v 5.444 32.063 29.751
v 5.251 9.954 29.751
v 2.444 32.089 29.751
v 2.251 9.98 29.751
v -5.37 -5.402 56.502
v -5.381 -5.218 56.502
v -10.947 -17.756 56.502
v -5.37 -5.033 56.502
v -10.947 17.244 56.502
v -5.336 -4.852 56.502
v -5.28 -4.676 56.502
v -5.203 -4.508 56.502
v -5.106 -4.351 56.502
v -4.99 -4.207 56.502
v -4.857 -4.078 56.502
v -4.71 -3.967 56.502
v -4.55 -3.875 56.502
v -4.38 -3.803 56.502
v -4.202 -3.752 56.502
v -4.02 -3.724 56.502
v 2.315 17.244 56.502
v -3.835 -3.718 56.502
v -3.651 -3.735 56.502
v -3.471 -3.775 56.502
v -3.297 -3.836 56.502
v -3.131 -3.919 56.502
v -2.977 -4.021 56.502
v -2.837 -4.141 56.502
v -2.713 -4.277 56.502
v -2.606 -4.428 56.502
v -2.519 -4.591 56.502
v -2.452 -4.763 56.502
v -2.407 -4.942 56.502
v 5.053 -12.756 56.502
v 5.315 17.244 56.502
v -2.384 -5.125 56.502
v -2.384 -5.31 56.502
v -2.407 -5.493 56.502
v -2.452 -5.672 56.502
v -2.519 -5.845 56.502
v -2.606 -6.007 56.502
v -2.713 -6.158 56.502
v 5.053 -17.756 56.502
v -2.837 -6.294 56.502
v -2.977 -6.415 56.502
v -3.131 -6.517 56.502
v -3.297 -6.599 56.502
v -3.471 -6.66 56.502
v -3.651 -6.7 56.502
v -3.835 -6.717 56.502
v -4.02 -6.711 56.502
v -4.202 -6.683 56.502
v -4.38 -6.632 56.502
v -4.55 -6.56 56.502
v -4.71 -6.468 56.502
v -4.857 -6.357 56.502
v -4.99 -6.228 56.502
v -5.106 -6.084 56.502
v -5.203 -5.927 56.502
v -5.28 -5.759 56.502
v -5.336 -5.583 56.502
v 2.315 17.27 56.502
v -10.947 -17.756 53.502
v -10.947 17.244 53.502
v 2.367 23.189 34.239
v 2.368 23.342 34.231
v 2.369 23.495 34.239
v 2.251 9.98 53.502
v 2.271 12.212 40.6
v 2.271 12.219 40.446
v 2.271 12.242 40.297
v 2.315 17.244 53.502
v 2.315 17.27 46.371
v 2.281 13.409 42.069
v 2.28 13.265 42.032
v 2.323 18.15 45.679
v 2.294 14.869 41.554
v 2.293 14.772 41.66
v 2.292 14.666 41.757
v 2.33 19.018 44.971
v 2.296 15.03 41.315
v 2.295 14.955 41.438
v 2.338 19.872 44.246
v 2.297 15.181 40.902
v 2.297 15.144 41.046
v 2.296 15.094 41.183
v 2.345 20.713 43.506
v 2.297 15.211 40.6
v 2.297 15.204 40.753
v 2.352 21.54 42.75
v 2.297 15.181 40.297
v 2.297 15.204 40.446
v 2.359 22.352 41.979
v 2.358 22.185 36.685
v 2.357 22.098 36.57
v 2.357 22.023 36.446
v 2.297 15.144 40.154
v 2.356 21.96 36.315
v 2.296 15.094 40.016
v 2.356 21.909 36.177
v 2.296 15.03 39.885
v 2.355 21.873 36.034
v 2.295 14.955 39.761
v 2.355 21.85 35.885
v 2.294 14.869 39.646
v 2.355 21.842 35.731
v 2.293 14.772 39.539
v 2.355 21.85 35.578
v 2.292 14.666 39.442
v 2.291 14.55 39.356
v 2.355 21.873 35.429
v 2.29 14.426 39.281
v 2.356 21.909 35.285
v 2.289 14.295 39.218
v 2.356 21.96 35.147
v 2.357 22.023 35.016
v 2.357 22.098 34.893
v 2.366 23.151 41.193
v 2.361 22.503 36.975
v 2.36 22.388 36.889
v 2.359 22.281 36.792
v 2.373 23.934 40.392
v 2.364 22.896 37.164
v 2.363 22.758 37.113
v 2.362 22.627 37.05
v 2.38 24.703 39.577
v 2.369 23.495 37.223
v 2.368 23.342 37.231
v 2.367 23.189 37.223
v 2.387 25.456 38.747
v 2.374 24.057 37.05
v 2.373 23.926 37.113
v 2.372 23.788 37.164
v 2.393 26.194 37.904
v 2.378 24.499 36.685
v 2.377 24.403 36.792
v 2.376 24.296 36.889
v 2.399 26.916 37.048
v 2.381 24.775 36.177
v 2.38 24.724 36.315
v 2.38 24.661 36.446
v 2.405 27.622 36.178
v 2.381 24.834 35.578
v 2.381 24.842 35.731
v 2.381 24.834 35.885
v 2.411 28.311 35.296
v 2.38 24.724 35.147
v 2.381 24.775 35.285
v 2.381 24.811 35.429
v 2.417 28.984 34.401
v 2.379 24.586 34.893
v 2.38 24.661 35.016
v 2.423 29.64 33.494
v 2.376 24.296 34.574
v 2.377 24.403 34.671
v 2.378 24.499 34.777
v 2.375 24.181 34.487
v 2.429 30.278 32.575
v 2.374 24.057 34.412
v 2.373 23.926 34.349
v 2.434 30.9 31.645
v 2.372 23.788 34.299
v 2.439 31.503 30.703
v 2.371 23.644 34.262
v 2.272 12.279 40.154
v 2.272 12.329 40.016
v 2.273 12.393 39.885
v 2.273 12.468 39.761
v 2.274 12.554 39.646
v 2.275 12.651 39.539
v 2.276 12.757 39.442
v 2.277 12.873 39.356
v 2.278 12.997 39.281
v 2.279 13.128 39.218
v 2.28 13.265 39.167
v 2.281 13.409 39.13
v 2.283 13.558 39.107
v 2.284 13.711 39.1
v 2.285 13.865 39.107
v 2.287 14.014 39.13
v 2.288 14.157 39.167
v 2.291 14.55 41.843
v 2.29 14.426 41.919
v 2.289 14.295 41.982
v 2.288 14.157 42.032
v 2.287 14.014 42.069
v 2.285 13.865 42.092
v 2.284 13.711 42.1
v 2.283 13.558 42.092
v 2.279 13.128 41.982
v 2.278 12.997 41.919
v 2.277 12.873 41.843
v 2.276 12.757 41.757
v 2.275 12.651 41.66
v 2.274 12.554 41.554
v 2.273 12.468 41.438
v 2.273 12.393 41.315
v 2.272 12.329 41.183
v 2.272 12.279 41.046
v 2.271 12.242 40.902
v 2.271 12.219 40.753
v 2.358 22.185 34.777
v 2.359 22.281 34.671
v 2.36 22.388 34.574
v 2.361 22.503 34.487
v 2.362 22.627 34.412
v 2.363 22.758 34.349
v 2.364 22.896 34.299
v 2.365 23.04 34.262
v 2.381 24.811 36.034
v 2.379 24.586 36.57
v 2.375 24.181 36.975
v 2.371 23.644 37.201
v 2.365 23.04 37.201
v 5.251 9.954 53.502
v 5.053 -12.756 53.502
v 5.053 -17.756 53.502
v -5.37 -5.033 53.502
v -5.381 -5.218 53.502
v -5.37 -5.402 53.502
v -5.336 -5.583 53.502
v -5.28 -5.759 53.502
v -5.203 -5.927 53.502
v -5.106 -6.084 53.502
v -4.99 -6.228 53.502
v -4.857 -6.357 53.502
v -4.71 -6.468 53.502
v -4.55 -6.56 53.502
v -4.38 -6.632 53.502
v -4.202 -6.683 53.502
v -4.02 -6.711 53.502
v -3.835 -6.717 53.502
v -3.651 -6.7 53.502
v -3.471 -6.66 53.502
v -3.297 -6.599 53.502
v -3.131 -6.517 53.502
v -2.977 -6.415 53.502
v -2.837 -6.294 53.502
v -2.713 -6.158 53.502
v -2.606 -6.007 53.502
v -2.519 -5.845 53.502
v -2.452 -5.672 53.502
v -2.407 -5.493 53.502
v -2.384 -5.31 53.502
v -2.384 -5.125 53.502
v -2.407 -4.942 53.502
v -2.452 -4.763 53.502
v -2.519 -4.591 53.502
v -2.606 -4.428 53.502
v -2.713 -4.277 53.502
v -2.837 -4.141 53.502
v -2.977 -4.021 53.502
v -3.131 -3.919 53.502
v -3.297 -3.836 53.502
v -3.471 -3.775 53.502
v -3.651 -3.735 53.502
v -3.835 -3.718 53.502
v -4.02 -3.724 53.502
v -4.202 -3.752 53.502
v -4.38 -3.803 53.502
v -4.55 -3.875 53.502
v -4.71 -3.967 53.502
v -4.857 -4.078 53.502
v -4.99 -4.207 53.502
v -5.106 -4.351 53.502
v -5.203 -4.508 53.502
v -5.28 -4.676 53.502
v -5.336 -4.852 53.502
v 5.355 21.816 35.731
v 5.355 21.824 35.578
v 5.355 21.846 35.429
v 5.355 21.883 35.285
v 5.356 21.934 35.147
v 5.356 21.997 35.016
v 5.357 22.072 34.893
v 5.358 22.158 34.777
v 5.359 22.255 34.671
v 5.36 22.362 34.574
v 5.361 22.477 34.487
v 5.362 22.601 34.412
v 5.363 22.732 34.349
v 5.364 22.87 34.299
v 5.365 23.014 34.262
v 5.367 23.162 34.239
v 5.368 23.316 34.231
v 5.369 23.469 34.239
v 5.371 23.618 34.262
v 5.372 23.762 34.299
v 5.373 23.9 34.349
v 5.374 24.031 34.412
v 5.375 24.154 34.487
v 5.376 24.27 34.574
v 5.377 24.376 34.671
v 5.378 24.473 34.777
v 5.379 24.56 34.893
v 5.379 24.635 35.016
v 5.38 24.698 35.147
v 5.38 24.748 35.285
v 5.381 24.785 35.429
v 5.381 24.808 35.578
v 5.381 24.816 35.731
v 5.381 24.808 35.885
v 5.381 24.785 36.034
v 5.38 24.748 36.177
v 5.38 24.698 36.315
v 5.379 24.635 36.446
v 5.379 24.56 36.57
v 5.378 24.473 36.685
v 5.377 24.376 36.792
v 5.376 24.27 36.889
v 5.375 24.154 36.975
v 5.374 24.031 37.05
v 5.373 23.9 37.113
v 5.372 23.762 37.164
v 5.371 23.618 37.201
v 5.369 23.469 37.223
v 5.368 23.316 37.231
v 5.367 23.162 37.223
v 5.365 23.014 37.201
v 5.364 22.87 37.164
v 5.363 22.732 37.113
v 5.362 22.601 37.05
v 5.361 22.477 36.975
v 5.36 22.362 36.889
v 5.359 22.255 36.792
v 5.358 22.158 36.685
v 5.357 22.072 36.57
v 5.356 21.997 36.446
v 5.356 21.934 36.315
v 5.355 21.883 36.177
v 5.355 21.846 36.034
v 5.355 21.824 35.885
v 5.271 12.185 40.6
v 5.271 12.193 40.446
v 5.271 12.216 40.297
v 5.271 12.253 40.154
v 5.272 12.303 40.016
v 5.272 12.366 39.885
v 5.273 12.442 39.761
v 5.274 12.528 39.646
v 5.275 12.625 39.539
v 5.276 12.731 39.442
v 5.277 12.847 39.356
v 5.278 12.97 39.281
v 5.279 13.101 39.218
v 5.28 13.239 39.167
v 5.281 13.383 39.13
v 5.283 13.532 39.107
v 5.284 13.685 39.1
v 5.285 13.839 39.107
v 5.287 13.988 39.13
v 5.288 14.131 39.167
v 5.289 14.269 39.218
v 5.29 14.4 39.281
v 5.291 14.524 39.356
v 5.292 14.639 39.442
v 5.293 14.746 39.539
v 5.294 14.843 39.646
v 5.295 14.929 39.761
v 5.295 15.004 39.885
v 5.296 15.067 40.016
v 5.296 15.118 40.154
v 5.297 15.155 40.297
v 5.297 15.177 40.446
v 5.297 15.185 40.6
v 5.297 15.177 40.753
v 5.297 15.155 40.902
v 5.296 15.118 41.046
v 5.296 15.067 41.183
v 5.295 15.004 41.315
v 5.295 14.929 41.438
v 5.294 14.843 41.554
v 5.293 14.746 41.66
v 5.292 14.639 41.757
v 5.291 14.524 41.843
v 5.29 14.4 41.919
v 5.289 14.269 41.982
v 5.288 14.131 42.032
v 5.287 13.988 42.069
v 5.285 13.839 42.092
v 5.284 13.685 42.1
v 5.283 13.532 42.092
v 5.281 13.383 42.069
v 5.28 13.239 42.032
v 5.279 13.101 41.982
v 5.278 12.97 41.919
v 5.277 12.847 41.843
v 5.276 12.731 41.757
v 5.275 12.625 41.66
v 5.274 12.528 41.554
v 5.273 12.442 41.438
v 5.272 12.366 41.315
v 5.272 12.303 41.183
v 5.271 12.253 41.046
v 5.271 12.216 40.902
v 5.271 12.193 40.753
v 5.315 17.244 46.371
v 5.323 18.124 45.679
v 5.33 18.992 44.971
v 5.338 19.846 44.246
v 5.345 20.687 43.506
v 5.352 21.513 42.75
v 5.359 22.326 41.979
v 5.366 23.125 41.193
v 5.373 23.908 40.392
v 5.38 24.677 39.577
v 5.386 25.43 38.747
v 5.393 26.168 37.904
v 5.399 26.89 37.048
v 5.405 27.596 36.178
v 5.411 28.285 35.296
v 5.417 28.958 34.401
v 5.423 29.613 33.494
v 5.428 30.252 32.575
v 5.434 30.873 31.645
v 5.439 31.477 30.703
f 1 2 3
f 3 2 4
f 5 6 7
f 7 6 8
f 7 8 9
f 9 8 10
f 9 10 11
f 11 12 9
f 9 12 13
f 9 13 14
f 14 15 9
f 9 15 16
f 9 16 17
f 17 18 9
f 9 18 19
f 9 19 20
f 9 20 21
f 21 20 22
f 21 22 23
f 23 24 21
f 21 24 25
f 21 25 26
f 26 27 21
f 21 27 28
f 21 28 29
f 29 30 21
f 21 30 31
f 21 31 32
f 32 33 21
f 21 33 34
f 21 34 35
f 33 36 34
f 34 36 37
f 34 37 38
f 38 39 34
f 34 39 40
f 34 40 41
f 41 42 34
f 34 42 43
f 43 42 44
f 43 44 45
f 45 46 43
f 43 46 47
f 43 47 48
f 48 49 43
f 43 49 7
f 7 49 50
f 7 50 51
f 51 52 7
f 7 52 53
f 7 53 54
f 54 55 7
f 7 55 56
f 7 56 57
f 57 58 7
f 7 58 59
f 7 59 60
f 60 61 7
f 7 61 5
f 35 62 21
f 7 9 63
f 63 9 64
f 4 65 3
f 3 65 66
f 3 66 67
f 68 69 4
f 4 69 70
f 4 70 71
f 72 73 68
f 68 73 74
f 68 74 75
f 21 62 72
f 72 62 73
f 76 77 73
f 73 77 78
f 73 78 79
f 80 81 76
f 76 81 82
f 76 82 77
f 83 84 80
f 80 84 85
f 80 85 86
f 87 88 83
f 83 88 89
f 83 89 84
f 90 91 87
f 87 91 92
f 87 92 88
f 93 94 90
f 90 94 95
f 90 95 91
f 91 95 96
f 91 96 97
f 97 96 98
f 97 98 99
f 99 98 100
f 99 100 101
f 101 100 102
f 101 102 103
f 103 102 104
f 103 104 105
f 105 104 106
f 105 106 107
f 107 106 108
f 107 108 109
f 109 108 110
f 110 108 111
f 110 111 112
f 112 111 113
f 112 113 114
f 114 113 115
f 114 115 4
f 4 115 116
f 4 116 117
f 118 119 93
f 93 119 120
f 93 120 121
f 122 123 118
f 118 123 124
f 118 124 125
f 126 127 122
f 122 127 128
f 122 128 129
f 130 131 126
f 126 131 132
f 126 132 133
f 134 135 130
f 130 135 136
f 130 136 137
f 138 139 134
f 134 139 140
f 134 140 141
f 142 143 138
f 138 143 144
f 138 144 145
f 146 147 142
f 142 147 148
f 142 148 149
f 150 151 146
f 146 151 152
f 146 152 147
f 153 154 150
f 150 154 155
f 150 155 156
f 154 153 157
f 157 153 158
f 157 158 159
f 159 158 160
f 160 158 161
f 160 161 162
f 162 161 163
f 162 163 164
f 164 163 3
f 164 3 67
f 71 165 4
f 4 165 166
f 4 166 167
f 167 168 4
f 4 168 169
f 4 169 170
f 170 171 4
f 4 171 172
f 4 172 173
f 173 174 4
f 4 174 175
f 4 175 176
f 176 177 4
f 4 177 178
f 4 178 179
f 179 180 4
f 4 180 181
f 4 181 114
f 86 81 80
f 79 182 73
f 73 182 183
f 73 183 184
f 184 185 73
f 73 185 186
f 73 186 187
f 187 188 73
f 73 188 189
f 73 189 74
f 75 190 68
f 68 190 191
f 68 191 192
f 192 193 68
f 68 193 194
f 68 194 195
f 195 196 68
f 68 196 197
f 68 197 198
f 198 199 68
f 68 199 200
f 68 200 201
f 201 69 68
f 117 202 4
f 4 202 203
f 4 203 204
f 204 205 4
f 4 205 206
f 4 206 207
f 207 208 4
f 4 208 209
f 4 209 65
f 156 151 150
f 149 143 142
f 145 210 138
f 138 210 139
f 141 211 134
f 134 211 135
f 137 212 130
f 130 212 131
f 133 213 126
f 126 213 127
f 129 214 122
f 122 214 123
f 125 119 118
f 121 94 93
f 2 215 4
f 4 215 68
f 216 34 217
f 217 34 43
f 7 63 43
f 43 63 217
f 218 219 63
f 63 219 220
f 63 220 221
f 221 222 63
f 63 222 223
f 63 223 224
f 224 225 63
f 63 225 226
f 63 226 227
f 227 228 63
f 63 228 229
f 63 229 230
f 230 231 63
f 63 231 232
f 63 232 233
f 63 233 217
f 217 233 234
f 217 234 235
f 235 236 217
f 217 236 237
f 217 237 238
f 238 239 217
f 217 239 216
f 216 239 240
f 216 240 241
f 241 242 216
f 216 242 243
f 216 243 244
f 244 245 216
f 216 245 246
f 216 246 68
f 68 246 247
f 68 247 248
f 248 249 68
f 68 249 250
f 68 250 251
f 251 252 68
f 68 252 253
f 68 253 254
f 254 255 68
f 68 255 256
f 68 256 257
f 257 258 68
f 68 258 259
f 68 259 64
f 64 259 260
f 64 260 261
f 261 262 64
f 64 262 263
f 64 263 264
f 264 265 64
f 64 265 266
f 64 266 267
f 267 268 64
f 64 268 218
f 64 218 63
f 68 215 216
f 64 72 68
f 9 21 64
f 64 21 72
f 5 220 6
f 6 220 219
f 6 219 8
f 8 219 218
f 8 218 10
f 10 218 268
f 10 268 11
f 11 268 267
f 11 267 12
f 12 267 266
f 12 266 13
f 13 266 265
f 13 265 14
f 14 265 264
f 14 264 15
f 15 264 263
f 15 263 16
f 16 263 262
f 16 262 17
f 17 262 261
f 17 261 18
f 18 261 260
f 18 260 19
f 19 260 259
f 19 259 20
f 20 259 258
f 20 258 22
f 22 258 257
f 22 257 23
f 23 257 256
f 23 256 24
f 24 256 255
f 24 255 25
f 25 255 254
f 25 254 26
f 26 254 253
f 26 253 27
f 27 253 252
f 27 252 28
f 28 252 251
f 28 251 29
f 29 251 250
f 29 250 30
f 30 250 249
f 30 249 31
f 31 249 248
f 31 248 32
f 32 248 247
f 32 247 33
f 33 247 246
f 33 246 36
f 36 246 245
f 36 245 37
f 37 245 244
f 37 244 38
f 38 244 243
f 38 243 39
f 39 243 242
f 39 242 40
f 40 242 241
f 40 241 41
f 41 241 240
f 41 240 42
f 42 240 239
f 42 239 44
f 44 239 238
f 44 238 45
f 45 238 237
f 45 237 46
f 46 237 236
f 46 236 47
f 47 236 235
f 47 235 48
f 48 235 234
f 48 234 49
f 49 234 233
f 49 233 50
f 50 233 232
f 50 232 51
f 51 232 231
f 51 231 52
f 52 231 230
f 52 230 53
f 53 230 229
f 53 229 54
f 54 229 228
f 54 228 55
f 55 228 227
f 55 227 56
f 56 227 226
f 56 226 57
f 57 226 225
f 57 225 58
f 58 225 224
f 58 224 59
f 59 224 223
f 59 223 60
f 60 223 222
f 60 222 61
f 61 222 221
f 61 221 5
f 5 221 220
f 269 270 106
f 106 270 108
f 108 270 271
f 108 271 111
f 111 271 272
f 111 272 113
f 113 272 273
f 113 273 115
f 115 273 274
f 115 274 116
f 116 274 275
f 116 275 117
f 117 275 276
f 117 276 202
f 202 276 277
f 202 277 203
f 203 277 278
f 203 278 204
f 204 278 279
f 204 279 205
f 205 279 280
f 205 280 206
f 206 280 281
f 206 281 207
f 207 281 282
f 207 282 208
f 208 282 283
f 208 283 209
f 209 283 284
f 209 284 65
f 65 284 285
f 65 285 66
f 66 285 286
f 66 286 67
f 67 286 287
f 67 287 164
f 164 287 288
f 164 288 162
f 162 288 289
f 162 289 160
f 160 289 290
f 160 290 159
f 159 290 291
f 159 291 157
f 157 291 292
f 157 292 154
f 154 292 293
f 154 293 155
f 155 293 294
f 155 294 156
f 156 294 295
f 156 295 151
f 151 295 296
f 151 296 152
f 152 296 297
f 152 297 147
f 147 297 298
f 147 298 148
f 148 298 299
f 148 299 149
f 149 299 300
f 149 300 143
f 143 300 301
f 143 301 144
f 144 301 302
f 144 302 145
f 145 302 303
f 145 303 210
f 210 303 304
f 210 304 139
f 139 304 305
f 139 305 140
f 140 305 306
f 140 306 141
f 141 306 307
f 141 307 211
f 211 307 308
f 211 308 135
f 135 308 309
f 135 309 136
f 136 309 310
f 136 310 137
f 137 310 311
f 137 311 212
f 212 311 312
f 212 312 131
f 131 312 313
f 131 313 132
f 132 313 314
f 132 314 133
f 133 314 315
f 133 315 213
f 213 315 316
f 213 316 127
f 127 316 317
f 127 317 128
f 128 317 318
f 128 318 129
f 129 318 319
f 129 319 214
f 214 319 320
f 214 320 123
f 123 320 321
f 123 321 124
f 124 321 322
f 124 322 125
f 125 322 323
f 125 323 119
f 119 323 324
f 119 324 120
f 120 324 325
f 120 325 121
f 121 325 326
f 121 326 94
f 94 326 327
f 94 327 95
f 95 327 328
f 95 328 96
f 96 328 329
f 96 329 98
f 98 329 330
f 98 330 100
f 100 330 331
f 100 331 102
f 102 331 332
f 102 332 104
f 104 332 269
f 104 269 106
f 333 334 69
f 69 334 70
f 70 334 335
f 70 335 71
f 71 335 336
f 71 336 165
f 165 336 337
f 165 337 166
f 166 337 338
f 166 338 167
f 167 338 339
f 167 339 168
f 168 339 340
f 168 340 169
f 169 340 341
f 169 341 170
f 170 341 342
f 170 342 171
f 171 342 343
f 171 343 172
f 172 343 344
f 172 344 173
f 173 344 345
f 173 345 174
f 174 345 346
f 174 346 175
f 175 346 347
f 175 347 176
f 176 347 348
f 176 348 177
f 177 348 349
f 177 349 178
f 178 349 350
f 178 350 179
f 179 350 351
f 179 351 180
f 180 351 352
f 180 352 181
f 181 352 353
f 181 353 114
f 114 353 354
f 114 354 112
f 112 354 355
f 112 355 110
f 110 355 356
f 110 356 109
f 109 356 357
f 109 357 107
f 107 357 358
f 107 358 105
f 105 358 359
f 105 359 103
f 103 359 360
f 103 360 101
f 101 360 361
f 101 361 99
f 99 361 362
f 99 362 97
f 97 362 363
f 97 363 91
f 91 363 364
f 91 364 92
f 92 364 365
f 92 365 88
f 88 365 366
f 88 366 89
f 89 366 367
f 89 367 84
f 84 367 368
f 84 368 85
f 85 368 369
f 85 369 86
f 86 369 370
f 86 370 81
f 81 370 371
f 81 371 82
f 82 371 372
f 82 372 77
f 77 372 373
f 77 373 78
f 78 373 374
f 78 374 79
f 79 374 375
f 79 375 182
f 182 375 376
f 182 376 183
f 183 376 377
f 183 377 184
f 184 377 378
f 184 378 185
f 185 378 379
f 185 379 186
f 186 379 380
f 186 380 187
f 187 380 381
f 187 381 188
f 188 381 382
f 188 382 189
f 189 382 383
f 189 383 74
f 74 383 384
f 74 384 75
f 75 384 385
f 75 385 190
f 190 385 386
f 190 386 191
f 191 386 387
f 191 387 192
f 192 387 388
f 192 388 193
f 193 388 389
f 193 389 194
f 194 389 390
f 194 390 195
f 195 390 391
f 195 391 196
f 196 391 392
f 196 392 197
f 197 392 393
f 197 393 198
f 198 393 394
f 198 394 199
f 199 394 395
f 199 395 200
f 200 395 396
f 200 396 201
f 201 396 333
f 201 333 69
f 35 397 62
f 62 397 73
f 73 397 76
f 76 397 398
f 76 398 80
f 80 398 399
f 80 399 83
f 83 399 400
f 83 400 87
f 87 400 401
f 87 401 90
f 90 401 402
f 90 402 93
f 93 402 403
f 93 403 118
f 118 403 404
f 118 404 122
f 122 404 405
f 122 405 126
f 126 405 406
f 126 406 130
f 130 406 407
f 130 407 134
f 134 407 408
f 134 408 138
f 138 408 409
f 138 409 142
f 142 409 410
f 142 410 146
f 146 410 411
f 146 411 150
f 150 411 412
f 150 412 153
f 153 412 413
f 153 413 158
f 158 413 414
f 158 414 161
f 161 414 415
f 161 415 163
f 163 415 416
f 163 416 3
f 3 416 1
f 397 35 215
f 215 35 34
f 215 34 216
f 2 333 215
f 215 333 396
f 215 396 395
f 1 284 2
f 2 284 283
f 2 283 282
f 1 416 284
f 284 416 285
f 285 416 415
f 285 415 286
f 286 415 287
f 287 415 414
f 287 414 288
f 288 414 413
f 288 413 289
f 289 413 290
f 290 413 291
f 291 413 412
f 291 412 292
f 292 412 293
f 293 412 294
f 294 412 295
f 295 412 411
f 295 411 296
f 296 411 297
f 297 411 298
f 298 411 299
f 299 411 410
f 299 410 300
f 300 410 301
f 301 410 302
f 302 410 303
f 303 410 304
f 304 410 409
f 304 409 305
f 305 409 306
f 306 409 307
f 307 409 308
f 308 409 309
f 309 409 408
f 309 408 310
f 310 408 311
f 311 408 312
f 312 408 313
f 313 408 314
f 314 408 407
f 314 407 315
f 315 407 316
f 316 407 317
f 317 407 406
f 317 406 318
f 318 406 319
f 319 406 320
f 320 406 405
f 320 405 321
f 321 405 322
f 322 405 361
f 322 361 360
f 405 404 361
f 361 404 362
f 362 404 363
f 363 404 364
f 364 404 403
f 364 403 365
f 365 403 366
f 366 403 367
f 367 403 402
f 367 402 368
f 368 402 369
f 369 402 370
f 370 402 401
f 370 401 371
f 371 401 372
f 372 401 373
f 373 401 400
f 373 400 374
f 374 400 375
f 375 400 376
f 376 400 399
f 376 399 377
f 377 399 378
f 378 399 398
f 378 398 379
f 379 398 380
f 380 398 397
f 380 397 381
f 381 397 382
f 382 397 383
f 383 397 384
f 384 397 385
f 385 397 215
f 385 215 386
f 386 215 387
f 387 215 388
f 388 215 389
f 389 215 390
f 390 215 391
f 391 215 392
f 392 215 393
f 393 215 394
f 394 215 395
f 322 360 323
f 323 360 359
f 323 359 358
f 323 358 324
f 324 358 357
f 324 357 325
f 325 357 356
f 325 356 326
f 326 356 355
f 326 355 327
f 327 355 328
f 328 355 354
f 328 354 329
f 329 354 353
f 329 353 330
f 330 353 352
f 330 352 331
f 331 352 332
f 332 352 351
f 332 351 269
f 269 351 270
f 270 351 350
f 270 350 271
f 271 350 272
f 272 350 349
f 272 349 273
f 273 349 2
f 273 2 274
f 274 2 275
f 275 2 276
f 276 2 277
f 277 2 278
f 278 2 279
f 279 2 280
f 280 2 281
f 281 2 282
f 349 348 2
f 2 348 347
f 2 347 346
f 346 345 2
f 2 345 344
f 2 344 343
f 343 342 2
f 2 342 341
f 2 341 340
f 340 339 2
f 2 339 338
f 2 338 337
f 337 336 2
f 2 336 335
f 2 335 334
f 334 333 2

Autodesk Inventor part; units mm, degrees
ref_plane "YZ Plane" through (0, 0, 0) normal (1, 0, 0) x (0, 1, 0)
ref_plane "XZ Plane" through (0, 0, 0) normal (0, 1, 0) x (-1, 0, 0)
ref_plane "XY Plane" through (0, 0, 0) normal (0, 0, 1) x (1, 0, 0)
sketch "Эскиз1" plane through (0, 0, 0) normal (0, 0, 1) x (1, 0, 0)
  circle A0 centre (-3.8814, -5.2176) radius 1.5 projected
  line L0 (-10.8201, 1.8432) -> (-11.0949, -29.6556) projected
  line L1 (4.4719, -79.3628) -> (5.5191, 40.6326) projected
  line L2 (-9.8587, -12.7657) -> (-5.4656, -12.804) projected
  line L3 (-10.9475, -12.7562) -> (5.315, -12.7562)
  line L4 (5.315, -12.7562) -> (5.315, 17.2438)
  line L5 (5.315, 17.2438) -> (-10.9475, 17.2438)
  line L6 (-10.9475, 17.2438) -> (-10.9475, -12.7562)
  point P0 (0, 0)
  point P1 (5.1784, 1.5986)
  point P2 (5.0531, -12.7562)
  dimension "d0" = 30
extrude "Выдавливание1" add sketch "Эскиз1" along normal blind 3 contours L3 L6 L5 L1
sketch "Эскиз2" plane through (5.315, 17.2438, 3) normal (1, -0.0087, 0) x (0, 0, -1)
  spline S0 degree 3 poles (-15.9024, -5.0587) (-16.7308, -5.0587) (-17.4024, -4.3871) (-17.4024, -3.5587) (-17.4024, -2.7303) (-16.7308, -2.0587) (-15.9024, -2.0587) (-15.074, -2.0587) (-14.4024, -2.7303) (-14.4024, -3.5587) (-14.4024, -4.3871) (-15.074, -5.0587) (-15.9024, -5.0587) knots 0 0 0 0 0.25 0.25 0.25 0.5 0.5 0.5 0.75 0.75 0.75 1 1 1 1 projected
  spline S1 degree 3 poles (-20.7708, 4.5722) (-21.5992, 4.5722) (-22.2708, 5.2438) (-22.2708, 6.0722) (-22.2708, 6.9006) (-21.5992, 7.5722) (-20.7708, 7.5722) (-19.9424, 7.5722) (-19.2708, 6.9006) (-19.2708, 6.0722) (-19.2708, 5.2438) (-19.9424, 4.5722) (-20.7708, 4.5722) knots 0 0 0 0 0.25 0.25 0.25 0.5 0.5 0.5 0.75 0.75 0.75 1 1 1 1 projected
  line L0 (0, -30.0011) -> (0, 0) projected
  line L1 (0, -7.2902) -> (-26.751, -7.2902)
  spline S2 degree 3 poles (-117.3896, -42.4533) (-114.4523, -72.8485) (-88.8364, -96.6103) (-57.6706, -96.6103) (-24.5335, -96.6103) (2.3293, -69.7475) (2.3293, -36.6104) (2.3293, -3.4733) (-24.5335, 23.3896) (-57.6706, 23.3896) (-89.3782, 23.3896) (-115.3412, -1.2057) (-117.5222, -32.3587) knots 0 0 0 0 0.2 0.2 0.2 0.4 0.4 0.4 0.6 0.6 0.6 0.8 0.8 0.8 0.8 projected
  line L2 (-26.751, -7.2902) -> (-26.751, 14.8198)
  line L3 (-10.1308, 0) -> (0, 0)
  point P0 (3, -17.2895)
  point P1 (-15.9024, -5.0587)
  point P2 (-20.7708, 4.5722)
extrude "Выдавливание2" add sketch "Эскиз2" against normal blind 3 contours L1 S2 L3 L0 | L1 L2 S2
sketch "Эскиз3" plane through (0, 0, 0) normal (0, 0, -1) x (-1, 0, 0)
  line L0 (-5.315, 17.2438) -> (10.9475, 17.2438) projected
  line L1 (10.9475, -12.7562) -> (-5.0531, -12.7562) projected
  line L2 (10.9475, 17.2438) -> (10.9475, -12.7562) projected
  line L3 (-5.315, 17.2438) -> (10.9475, 17.2438) projected
  line L4 (-5.0531, -12.7562) -> (-5.315, 17.2438) projected
  circle A0 centre (3.8814, -5.2176) radius 1.5 projected
  point P0 (0, 0)
extrude "Выдавливание3" add sketch "Эскиз3" against normal blind 6
sketch "Эскиз4" plane through (0, 0, 0) normal (0, 0, -1) x (-1, 0, 0)
  line L0 (10.9475, -12.7562) -> (-5.0531, -12.7562) projected
  line L1 (10.9475, 17.2438) -> (10.9475, -12.7562) projected
  line L2 (-5.315, 17.2438) -> (10.9475, 17.2438) projected
  line L3 (-5.0531, -12.7562) -> (-5.315, 17.2438) projected
  circle A0 centre (3.8814, -5.2176) radius 1.5 projected
  point P0 (0, 0)
extrude "Выдавливание4" cut sketch "Эскиз4" against normal blind 3
sketch "Эскиз5" plane through (-10.9475, -12.7562, 3) normal (0, -1, 0) x (1, 0, 0)
  line L0 (0, 0) -> (16.0006, 0) projected
  line L1 (16.0006, 0) -> (16.0006, 3) projected
  line L2 (0, 3) -> (16.0006, 3) projected
  line L3 (0, 0) -> (0, 3) projected
  point P0 (10.9475, -3)
extrude "Выдавливание5" add sketch "Эскиз5" along normal blind 5
mirror "Зеркальное отражение1" about plane through (5.2513, 9.9539, 29.751) normal (0, 0, 1) of "Выдавливание3", "Выдавливание2", "Выдавливание5"
sketch "Эскиз7" plane through (5.315, 17.2438, 13.1308) normal (1, -0.0087, 0) x (0, 0, -1)
  ellipse E0 centre (-44.6759, -33.7501) end of major axis (-85.7491, 7.3732) minor radius 55.9525 (0, 0) -> (-16.6202, 14.8198) ccw projected
  line L0 (0, 0) -> (0, -43.3652)
  line L1 (-16.6202, 18.912) -> (20.2447, 18.912)
  line L2 (20.2447, 18.912) -> (20.2447, -40.2119)
  line L3 (20.2447, -40.2119) -> (-16.6202, -40.2119)
  line L4 (-16.6202, -40.2119) -> (-16.6202, 18.912)
  line L5 (-46.3712, -30.1408) -> (-43.3712, -30.1408) projected
  line L6 (-43.3712, -30.1408) -> (-60.2207, -30.1408)
  line L7 (-60.2207, -30.1408) -> (-60.2207, 23.0222)
  line L8 (-60.2207, 23.0222) -> (-43.3712, 23.0222)
  line L9 (-43.3712, 23.0222) -> (-43.3712, -30.1408)
  point P0 (13.1308, -17.2895)
extrude "Выдавливание6" cut sketch "Эскиз7" against normal blind 30
sketch "Эскиз8" plane through (5.0531, -17.7562, 6) normal (1, 0, 0) x (0, 0, -1)
  line L0 (3, 5) -> (0, 5) projected
  line L1 (0, 5) -> (0, 0) projected
  line L2 (3, 0) -> (0, 0) projected
  line L3 (3, 5) -> (3, 0) projected
  point P0 (6, 17.7562)
extrude "Выдавливание7" cut sketch "Эскиз8" against normal blind 30
properties part number "encoderholderL"
